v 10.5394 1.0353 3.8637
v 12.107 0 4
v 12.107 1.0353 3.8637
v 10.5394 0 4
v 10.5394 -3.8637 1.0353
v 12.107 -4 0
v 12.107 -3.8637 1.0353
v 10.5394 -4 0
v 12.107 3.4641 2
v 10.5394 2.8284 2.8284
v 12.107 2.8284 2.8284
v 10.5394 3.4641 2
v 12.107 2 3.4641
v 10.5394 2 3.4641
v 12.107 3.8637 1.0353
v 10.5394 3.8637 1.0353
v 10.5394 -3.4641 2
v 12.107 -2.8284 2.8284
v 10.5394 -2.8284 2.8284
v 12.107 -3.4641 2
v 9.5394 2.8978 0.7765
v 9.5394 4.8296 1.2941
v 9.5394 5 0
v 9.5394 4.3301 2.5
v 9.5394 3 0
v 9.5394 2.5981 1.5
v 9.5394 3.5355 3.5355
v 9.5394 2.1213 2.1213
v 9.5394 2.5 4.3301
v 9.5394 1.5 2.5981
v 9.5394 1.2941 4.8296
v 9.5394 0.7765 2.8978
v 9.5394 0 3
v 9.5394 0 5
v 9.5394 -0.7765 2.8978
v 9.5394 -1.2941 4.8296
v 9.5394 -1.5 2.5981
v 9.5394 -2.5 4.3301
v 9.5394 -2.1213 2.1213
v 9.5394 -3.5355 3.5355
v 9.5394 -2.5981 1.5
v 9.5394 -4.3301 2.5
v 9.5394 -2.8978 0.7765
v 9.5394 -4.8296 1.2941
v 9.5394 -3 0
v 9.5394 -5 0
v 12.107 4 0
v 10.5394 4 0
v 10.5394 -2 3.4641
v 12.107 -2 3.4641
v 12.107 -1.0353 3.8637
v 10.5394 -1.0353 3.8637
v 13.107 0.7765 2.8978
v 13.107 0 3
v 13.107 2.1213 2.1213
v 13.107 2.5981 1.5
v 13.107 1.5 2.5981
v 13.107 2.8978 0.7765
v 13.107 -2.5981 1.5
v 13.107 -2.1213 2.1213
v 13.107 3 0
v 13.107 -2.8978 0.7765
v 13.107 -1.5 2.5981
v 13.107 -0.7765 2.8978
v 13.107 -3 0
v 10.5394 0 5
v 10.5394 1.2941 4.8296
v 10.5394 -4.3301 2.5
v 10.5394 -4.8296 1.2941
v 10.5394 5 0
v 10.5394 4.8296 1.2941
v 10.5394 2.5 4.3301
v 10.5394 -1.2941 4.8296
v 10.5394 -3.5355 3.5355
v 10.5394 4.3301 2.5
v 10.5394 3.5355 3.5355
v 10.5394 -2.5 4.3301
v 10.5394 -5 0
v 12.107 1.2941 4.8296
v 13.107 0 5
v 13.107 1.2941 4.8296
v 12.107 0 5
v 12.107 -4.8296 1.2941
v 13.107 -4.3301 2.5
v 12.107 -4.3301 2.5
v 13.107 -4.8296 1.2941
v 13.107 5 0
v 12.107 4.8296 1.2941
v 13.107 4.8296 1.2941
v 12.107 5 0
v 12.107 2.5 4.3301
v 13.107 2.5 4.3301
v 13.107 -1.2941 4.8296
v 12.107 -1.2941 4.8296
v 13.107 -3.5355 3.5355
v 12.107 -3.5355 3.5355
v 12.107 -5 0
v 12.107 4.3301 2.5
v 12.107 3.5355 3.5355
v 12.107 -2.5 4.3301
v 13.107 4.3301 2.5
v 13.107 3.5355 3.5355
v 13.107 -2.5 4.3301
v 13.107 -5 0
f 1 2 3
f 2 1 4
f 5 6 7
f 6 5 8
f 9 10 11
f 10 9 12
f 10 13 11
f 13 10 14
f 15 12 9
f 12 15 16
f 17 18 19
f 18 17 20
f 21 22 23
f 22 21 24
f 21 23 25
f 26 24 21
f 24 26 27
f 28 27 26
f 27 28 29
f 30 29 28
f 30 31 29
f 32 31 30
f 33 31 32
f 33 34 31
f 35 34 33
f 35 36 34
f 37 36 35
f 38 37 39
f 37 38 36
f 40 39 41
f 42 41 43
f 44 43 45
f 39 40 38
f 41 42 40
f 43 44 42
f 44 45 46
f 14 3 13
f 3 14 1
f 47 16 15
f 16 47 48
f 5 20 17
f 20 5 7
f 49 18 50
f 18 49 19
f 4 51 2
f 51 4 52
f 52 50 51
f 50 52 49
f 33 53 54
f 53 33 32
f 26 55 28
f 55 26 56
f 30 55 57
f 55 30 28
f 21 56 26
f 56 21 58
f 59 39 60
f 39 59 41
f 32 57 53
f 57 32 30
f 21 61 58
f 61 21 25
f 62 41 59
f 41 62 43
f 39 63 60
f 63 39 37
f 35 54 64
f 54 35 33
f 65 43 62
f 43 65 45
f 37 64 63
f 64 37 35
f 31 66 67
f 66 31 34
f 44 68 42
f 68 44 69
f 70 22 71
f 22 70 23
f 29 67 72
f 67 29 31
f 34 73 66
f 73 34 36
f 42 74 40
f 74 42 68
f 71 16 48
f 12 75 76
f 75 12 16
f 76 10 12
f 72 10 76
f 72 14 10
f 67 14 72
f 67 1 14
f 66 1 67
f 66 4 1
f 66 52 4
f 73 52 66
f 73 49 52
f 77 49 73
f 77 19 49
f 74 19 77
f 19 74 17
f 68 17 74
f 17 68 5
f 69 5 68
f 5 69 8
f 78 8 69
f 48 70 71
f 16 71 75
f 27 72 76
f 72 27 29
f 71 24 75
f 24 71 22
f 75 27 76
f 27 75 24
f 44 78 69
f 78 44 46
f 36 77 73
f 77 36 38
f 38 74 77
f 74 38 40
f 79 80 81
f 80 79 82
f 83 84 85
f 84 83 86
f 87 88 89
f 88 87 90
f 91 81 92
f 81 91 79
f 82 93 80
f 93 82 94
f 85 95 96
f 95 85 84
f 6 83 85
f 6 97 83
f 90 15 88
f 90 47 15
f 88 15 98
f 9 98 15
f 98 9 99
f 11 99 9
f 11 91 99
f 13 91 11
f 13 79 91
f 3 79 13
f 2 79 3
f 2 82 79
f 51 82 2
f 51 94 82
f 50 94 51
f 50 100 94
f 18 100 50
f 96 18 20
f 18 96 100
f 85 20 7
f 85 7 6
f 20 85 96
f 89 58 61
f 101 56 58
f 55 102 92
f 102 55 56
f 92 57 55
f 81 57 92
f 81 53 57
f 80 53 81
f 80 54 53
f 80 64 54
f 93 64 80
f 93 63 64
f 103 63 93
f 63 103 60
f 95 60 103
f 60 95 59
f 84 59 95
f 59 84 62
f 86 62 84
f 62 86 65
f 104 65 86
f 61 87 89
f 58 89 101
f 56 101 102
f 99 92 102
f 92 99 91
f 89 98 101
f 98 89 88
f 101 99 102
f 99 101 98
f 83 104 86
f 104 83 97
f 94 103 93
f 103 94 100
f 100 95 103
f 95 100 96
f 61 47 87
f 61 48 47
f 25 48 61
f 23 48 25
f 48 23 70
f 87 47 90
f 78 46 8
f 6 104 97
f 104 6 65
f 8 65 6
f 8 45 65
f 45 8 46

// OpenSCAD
// file: ../build_environments.scad
// build_environments.scad: modules to build level sections
//

module pool(diameter=10.0, wall_height=2.0, step_width=3.0, connections=[])
{
    difference() {
        union() {
        difference() {
            cylinder(h=0.5,r1=diameter+step_width,r2=diameter+step_width,$fn=48);
            translate([0,0,-0.1])
                cylinder(h=0.7,r1=diameter,r2=diameter,$fn=48);
        }
        difference() {
            cylinder(h=wall_height,r1=diameter+step_width+1.0,r2=diameter+step_width+1.0,$fn=48);
            translate([0,0,-0.1])
                cylinder(h=wall_height+0.2,r1=diameter+step_width,r2=diameter+step_width,$fn=48);
        }
        }
    
        for (c = connections)
        {
            rotate([0,90,0]) {
                angle = atan2(c[1],c[0]);
                rotate([-angle,0,0]) {
                    cylinder(h=diameter+5.0,r1=c[2],r2=c[2],$fn=48);
                }
            }
        }
    }
}

module straight(length=10.0, width=2.0, dy1=0.0, dy2=0.0, dz=0.0)
{
    dims = [0, 0, 0, 0, 0, (dz/length)];
    matrix = [
        [ 1, dims[0], dims[1], 0 ],
        [ dims[2], 1, dims[4], 0 ],
        [ dims[5], dims[3], 1, 0 ],
        [ 0, 0, 0, 1 ]
    ];
    multmatrix(matrix)
    difference() {
        translate([dy1,0,0])
        union() {
            rotate([0,90,0]) {
                difference() {
                    cylinder(h=(length-dy1-dy2),r1=width+1.0,r2=width+1.0,$fn=24);
                    translate([0,0,-0.1])
                        cylinder(h=(length-dy1-dy2+0.2),r1=width,r2=width,$fn=24);
                }
                difference() {
                    cylinder(h=1.0,r1=width+2.0,r2=width+2.0,$fn=24);
                    translate([0,0,-0.1])
                        cylinder(h=1.2,r1=width,r2=width,$fn=24);
                }
                translate([0,0,(length-dy1-dy2)-1.0]) {
                    difference() {
                        cylinder(h=1.0,r1=width+2.0,r2=width+2.0,$fn=24);
                        translate([0,0,-0.1])
                            cylinder(h=1.2,r1=width,r2=width,$fn=24);
                    }
                }
            }
        }
        translate([0,0,-(2*width+4.0)/2])
            cube([3*length,3*length,2*width+4.0],center=true);
    }
}

module curve(p0=[0,0], center=[0,0], dir=1, angle=0.0, width=2.0)
{
    radius = sqrt((p0[0]-center[0])*(p0[0]-center[0]) + (p0[1]-center[1])*(p0[1]-center[1]));
    if (dir == 0) {
        difference() {
            rotate([0,0,-90])
            difference() {
                rotate_extrude(angle = angle, convexity = 10, $fn=32)
                    translate([radius, 0, 0])
                        circle(r = width+1.0,$fn=24);
                rotate([0,0,-1.0])
                    rotate_extrude(angle = angle+2.0, convexity = 10, $fn=32)
                        translate([radius, 0, 0])
                            circle(r = width,$fn=24);
            }
            translate([0,0,-(2*width+4.0)/2])
                cube([5*radius,5*radius,2*width+4.0],center=true);
        }
    }
    else {
        difference() {
            rotate([0,0,90])
            difference() {
                rotate_extrude(angle = -angle, convexity = 10, $fn=32)
                    translate([radius, 0, 0])
                        circle(r = width+1.0,$fn=24);
                rotate([0,0,1.0])
                    rotate_extrude(angle = -angle-2.0, convexity = 10, $fn=32)
                        translate([radius, 0, 0])
                            circle(r = width,$fn=24);
            }
            translate([0,0,-(2*width+4.0)/2])
                cube([5*radius,5*radius,2*width+4.0],center=true);
        }
    }

}

// test pool
//pool(diameter=12.0000, wall_height=3.0000, step_width=3.0000, connections=[[0.0000,-26.0000,2.0000], [23.6074,0.0000,2.0000]]);

// test straight, slope
//straight(length=26.0000, width=2.0000, dy1=11.8322, dy2=6.7082, dz=0.0000);
//straight(length=29.1549, width=12.0000, dy1=0.0000, dy2=0.0000, dz=-15.0000);

// test curve
//curve(p0=[23.6074, 0.0000], center=[23.6074, 5.0000], dir=0, angle=60.1011, width=2.0000);
//curve(p0=[33.6426, 12.4219], center=[37.9771, 9.9295], dir=1, angle=120.4627, width=2.0000);
// main file
use <../build_environments.scad>;
straight(length=13.1070, width=3.0000, dy1=9.5394, dy2=0.0000, dz=0.0000);
